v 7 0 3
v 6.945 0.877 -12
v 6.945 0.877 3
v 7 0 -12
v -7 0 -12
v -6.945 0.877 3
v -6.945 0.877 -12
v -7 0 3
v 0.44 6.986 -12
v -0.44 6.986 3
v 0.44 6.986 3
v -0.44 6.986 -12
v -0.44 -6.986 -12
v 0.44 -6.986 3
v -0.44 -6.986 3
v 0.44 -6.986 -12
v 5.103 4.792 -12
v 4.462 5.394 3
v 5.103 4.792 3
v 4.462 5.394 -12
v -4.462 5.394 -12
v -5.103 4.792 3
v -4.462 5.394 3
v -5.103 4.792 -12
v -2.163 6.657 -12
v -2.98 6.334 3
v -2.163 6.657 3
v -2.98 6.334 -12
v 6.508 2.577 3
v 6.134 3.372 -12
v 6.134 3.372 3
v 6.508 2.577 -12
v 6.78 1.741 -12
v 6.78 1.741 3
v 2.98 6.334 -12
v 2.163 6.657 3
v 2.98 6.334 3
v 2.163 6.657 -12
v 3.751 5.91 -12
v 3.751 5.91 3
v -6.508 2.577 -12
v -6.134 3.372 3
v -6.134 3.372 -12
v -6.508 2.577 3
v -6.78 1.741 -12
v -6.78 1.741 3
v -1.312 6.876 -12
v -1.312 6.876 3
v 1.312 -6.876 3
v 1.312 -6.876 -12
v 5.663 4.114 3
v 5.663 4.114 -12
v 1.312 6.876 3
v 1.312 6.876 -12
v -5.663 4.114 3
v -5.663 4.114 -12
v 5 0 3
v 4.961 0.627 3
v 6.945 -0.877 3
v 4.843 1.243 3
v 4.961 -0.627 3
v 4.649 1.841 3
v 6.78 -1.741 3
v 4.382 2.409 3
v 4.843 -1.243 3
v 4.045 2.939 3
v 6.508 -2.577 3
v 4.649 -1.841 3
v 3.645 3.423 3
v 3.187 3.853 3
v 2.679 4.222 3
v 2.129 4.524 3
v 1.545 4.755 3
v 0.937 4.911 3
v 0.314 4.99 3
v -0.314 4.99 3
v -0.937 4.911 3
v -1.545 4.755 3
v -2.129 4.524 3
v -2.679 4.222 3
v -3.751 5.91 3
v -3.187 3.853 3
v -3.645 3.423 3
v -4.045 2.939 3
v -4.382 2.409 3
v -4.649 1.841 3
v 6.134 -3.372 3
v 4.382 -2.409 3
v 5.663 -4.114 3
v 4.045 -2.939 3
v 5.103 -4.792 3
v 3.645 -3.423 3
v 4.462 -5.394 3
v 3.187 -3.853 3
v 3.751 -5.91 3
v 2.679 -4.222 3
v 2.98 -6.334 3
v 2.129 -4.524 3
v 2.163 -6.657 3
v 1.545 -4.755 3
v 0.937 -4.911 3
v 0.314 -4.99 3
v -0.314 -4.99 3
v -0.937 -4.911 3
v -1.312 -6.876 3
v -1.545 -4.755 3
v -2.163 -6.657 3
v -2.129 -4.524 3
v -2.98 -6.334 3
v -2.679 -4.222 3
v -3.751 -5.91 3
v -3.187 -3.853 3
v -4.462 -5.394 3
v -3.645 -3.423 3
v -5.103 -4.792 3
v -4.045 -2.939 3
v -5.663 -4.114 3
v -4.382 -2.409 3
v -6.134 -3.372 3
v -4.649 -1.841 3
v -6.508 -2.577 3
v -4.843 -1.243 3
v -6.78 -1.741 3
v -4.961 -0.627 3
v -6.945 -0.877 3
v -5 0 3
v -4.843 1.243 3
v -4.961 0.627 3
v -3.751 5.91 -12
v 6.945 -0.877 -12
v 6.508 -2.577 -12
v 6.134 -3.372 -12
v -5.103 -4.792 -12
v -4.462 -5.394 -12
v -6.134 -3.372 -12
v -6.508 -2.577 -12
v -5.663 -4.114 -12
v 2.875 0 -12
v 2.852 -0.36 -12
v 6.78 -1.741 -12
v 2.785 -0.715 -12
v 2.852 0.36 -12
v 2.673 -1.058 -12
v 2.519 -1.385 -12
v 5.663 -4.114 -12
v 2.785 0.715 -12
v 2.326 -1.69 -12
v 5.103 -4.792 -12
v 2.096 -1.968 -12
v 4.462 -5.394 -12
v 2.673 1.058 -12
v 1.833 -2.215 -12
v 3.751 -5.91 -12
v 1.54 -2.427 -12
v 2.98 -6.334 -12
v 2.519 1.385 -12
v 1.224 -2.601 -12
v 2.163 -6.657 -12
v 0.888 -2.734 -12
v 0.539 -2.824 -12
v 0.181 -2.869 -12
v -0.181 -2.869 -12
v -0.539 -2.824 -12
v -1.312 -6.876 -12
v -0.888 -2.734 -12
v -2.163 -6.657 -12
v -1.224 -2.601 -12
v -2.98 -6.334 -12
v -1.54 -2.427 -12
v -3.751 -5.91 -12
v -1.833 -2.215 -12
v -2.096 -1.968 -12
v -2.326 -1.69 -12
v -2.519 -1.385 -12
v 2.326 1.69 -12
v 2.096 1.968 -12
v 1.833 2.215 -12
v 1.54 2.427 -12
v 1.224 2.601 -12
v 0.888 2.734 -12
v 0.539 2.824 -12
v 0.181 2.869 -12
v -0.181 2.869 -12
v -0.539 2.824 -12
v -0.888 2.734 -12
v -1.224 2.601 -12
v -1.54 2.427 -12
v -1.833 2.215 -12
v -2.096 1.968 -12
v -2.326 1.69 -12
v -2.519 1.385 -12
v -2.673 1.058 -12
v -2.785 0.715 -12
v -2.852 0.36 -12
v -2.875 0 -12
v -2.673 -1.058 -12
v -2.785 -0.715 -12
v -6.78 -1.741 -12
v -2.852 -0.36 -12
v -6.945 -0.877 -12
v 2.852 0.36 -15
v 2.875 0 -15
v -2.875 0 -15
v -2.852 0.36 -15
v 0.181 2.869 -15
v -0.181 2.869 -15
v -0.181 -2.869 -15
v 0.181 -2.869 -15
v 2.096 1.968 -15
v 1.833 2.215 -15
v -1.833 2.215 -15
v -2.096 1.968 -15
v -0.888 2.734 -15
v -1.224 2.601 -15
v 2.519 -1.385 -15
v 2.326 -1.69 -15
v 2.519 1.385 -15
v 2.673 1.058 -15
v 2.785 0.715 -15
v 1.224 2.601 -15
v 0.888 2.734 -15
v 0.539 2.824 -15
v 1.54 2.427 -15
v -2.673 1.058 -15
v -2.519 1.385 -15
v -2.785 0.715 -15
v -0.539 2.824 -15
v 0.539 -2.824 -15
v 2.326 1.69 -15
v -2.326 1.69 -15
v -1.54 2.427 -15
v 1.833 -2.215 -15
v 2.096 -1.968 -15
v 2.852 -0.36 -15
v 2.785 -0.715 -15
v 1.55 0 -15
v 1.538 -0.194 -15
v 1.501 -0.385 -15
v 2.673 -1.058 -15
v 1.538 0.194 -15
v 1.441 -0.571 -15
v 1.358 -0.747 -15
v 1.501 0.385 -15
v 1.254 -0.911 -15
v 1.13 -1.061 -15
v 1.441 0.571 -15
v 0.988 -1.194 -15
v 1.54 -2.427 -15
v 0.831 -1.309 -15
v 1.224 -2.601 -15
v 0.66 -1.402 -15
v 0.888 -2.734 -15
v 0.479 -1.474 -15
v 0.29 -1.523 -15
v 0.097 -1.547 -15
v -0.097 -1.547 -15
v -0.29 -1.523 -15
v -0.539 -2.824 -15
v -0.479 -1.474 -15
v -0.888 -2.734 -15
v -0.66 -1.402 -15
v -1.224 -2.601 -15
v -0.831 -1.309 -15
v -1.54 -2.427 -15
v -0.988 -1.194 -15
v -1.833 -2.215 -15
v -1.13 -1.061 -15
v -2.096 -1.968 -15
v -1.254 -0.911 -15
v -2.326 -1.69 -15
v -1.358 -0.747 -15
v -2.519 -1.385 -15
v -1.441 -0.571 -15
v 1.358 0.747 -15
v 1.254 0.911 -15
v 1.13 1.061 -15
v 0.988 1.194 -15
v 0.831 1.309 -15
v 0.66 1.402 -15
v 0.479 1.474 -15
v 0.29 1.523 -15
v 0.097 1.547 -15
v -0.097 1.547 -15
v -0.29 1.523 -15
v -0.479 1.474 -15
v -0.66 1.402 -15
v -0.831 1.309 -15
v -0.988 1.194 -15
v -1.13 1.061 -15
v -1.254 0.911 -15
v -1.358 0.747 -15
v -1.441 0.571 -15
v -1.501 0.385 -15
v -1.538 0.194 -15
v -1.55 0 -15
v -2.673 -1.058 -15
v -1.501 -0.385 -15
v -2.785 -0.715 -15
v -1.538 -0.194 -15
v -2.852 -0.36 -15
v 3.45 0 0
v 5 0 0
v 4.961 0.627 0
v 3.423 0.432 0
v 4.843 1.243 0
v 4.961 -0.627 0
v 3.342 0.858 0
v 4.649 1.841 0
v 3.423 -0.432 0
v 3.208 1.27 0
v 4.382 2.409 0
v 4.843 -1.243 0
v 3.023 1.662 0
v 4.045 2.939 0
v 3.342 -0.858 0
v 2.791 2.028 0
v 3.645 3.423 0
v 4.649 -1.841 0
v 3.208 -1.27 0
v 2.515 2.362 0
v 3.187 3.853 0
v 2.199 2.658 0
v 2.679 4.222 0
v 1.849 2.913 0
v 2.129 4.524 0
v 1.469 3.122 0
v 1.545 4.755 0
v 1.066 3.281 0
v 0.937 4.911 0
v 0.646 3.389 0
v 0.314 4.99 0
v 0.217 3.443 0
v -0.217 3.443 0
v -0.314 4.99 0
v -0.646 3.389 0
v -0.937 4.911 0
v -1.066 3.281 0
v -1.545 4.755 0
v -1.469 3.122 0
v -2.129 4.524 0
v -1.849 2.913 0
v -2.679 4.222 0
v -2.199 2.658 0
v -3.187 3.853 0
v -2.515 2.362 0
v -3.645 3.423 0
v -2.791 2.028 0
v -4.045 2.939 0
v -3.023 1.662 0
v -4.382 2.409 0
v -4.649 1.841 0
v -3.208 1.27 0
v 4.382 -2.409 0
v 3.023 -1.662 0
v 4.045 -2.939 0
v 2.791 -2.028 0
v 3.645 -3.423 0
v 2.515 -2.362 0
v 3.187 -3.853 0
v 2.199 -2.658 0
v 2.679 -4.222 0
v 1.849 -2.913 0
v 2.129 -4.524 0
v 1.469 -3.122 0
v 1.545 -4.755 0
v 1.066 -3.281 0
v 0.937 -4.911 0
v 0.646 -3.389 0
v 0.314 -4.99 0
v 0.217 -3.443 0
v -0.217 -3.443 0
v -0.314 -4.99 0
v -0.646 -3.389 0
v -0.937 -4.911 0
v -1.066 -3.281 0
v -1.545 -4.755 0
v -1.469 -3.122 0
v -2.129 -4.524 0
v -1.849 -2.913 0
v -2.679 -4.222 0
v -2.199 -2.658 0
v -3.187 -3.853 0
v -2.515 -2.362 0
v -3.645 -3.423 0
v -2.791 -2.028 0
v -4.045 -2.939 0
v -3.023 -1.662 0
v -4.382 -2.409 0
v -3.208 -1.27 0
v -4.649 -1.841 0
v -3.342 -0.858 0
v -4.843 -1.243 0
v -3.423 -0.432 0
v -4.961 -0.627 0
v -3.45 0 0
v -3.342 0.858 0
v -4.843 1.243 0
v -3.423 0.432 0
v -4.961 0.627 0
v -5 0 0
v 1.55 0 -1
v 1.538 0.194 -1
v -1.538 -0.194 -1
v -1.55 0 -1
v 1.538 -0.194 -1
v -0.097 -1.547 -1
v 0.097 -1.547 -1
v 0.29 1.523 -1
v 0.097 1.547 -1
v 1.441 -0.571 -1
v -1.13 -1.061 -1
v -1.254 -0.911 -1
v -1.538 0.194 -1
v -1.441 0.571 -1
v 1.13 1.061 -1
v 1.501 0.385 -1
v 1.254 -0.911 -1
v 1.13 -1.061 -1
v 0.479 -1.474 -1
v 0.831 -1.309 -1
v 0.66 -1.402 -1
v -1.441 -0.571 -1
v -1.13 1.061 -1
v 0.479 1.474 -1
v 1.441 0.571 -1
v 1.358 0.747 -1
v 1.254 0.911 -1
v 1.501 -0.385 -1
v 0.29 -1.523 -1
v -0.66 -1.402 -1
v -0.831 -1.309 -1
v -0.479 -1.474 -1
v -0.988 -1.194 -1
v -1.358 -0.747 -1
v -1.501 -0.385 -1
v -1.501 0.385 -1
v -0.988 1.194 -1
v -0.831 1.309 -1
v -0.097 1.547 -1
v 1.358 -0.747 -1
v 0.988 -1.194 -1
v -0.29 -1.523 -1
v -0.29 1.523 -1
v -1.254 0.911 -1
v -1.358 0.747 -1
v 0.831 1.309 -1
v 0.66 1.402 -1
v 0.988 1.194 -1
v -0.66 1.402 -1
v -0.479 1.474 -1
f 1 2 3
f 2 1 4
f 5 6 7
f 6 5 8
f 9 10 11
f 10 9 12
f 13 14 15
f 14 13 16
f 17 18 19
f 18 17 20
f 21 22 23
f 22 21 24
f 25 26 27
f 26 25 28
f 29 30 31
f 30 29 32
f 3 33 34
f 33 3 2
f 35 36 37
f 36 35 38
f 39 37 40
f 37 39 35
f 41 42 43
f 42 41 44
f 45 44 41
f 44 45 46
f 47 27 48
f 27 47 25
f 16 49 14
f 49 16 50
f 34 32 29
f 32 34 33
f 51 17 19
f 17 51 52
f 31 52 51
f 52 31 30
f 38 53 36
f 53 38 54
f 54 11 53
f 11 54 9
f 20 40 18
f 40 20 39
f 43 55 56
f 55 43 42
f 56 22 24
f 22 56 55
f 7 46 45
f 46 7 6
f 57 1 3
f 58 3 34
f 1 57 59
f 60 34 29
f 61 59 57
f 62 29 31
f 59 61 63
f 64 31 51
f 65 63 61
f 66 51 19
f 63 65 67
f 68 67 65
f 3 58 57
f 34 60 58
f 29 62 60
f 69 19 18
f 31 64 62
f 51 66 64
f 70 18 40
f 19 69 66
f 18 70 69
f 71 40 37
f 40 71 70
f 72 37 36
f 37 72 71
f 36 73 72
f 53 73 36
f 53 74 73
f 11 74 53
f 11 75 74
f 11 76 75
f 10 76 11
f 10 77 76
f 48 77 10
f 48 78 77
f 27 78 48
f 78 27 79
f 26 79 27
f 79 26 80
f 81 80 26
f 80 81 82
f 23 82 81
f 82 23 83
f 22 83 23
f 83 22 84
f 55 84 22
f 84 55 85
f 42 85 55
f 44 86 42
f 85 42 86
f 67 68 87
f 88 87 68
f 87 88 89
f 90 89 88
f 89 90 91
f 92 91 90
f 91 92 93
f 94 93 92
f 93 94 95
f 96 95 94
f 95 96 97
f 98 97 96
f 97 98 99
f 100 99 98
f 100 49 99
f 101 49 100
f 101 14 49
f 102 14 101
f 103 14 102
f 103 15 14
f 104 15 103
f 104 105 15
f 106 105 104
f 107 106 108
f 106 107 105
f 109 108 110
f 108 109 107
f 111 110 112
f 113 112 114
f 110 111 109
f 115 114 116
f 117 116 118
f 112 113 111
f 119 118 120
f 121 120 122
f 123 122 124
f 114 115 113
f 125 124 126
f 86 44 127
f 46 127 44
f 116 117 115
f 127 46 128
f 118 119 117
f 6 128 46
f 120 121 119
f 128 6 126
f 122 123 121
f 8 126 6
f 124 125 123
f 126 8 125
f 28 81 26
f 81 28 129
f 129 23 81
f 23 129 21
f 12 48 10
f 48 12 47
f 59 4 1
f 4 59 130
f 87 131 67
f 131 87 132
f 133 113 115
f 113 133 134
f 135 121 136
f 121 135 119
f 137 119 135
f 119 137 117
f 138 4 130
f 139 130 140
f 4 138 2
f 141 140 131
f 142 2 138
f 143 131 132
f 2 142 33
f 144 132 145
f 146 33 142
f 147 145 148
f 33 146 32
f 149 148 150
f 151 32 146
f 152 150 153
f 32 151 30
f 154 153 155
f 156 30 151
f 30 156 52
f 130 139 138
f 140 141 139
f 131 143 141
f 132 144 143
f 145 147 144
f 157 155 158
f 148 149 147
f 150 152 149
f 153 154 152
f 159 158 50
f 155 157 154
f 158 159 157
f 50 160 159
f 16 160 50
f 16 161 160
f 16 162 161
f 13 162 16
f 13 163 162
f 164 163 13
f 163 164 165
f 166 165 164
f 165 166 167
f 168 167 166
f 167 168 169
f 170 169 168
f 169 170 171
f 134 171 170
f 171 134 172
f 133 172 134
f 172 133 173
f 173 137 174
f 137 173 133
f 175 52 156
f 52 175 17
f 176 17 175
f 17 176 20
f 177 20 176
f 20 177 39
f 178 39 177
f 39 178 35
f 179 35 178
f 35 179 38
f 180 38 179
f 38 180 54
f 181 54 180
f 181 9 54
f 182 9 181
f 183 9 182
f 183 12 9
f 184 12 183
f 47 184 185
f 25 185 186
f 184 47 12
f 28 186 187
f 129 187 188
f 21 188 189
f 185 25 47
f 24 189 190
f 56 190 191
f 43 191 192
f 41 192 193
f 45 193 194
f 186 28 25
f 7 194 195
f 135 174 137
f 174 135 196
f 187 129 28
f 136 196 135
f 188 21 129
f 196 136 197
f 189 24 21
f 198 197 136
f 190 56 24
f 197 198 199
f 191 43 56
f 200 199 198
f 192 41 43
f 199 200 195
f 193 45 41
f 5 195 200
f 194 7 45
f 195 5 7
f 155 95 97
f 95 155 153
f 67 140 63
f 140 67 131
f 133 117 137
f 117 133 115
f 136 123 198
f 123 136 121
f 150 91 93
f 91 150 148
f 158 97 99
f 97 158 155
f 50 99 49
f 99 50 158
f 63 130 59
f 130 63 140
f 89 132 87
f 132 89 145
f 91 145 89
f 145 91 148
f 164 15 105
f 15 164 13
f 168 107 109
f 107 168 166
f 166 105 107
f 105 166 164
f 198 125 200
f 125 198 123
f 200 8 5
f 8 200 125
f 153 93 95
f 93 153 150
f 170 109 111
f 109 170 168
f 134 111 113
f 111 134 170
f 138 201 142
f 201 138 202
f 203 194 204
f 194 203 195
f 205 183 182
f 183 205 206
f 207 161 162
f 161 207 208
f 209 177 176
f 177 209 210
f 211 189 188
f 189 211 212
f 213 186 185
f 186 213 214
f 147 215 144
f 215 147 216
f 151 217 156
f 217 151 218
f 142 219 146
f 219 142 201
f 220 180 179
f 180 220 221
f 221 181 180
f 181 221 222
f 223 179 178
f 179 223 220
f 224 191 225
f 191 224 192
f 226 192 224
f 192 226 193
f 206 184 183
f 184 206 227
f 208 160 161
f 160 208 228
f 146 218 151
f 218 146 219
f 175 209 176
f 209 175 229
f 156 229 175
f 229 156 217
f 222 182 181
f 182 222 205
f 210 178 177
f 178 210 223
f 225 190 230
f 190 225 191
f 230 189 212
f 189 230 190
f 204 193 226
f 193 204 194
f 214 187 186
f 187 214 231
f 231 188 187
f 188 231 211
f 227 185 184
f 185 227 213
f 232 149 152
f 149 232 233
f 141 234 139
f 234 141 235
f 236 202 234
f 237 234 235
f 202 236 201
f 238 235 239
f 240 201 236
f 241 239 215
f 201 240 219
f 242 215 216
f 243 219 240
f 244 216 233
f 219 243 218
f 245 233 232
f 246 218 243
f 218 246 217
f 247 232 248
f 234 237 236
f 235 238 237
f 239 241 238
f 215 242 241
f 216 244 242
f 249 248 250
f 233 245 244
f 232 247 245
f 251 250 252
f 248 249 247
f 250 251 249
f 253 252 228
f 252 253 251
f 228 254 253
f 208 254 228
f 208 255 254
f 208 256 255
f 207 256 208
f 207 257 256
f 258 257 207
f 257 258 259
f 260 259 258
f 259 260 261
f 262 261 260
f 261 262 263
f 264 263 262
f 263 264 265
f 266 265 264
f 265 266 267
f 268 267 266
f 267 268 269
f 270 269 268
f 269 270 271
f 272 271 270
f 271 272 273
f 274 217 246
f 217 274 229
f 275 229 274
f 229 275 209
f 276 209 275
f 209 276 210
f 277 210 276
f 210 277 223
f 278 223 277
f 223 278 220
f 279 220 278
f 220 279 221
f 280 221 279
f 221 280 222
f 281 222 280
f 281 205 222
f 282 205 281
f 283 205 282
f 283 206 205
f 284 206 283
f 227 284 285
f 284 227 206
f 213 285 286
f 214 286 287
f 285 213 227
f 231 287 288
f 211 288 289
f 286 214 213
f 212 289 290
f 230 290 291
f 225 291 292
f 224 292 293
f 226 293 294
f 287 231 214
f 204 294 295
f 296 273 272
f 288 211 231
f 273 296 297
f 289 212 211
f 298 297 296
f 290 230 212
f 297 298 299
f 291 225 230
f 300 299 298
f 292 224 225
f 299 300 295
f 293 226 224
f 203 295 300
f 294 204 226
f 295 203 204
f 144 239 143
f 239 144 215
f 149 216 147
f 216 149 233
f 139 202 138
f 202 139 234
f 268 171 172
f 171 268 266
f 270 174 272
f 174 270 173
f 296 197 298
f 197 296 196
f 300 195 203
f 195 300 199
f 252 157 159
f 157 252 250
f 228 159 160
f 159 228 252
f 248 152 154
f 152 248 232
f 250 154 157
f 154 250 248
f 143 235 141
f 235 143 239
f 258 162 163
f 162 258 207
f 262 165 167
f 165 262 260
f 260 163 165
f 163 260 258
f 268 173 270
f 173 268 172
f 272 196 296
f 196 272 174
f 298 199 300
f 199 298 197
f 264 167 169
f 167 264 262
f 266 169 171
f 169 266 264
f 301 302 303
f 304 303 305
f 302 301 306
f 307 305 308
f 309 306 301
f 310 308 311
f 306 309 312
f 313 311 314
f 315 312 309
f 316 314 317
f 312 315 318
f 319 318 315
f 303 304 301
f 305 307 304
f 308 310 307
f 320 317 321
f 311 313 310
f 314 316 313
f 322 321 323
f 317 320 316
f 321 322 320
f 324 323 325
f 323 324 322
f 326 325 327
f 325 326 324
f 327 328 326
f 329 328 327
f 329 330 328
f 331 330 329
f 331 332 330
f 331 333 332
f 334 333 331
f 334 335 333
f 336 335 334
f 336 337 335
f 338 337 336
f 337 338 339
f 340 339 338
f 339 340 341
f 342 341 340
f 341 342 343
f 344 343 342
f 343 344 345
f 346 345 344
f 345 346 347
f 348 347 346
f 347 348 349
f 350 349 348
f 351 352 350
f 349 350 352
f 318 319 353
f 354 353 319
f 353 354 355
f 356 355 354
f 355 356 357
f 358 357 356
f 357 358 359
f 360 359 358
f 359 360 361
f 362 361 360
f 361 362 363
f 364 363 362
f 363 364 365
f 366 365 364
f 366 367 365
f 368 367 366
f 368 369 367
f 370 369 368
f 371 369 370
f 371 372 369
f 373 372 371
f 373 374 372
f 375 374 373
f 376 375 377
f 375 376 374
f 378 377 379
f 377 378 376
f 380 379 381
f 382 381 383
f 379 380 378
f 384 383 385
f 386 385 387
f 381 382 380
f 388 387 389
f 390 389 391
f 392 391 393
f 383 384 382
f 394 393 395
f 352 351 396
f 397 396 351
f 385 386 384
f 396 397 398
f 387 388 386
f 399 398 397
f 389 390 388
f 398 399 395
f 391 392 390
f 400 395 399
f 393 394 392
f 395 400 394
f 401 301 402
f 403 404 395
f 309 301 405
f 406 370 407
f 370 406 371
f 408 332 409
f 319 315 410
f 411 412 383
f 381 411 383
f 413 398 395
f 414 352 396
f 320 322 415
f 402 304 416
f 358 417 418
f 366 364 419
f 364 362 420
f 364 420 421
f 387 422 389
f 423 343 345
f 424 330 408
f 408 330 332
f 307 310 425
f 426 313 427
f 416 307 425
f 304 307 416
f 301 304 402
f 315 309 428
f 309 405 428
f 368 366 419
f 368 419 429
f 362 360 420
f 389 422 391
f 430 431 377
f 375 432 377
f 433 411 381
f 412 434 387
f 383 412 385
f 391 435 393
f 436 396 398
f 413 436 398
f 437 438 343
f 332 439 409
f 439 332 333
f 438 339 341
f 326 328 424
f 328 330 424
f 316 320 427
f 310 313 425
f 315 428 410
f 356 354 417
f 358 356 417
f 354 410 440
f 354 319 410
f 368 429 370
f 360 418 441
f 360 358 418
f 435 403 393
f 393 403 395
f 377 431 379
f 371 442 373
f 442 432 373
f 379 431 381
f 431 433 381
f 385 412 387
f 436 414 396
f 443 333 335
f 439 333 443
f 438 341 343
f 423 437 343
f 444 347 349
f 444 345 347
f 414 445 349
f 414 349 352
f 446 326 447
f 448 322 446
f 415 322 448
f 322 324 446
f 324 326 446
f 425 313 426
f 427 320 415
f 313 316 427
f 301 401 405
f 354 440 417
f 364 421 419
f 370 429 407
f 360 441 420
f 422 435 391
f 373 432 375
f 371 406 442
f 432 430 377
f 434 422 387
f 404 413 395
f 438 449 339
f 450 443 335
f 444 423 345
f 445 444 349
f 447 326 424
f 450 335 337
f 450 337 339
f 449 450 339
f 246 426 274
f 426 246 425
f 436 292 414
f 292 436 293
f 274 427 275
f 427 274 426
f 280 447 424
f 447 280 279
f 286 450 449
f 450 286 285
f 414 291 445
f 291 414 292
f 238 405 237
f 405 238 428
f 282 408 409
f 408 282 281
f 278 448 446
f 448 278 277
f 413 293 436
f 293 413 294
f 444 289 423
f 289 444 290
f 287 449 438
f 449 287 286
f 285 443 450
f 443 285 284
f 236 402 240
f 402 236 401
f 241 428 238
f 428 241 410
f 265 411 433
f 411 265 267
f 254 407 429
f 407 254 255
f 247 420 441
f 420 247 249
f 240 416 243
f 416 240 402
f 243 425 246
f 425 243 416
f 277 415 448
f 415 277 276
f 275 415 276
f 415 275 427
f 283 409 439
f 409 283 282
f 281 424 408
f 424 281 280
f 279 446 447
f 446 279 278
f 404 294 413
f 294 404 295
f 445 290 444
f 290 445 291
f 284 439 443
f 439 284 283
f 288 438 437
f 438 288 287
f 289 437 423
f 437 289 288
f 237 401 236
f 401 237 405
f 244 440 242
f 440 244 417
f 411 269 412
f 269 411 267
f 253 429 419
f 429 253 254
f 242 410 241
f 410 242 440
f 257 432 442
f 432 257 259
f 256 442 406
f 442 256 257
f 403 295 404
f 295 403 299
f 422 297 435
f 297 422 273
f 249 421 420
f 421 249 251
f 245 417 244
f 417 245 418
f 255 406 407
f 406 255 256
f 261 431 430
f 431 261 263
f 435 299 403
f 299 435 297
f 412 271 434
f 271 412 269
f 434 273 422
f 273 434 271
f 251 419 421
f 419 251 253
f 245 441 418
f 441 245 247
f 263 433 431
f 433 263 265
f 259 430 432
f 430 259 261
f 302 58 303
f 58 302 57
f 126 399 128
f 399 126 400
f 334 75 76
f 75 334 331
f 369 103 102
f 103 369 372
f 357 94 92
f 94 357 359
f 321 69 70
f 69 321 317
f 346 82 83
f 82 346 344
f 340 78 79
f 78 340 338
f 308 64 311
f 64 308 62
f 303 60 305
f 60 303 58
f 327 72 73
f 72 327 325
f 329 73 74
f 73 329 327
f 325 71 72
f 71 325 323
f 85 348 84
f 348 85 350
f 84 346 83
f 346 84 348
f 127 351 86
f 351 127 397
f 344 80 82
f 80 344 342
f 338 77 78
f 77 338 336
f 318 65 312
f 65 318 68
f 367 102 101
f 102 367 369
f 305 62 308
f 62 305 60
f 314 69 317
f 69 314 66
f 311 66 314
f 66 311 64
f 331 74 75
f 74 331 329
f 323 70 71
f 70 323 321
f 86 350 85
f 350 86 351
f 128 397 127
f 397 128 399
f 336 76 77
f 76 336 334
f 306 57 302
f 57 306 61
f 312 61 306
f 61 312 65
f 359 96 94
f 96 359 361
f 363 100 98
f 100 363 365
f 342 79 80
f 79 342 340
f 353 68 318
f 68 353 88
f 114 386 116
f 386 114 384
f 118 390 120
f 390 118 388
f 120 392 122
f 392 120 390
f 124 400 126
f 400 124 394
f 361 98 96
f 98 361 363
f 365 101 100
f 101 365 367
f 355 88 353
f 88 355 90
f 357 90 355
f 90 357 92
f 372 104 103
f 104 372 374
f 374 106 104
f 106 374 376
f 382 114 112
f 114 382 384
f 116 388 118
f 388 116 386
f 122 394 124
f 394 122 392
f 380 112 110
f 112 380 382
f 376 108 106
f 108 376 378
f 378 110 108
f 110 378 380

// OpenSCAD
$fn = 50;


difference() {
	union() {
		translate(v = [0, 0, -12.0000000000]) {
			cylinder(h = 15, r = 7.0000000000);
		}
		#translate(v = [0, 0, -15.0000000000]) {
			cylinder(h = 15, r = 2.8750000000);
		}
	}
	union() {
		translate(v = [0, 0, 0]) {
			rotate(a = [0, 0, 0]) {
				difference() {
					union() {
						translate(v = [0, 0, -15.0000000000]) {
							cylinder(h = 15, r = 1.2500000000);
						}
						translate(v = [0, 0, -1.0000000000]) {
							cylinder(h = 1.0000000000, r1 = 1.5500000000, r2 = 3.4500000000);
						}
						translate(v = [0, 0, -15.0000000000]) {
							cylinder(h = 15, r = 1.5500000000);
						}
						translate(v = [0, 0, -15.0000000000]) {
							cylinder(h = 15, r = 1.2500000000);
						}
					}
					union();
				}
			}
		}
		#cylinder(h = 3, r = 5.0000000000);
	}
}
